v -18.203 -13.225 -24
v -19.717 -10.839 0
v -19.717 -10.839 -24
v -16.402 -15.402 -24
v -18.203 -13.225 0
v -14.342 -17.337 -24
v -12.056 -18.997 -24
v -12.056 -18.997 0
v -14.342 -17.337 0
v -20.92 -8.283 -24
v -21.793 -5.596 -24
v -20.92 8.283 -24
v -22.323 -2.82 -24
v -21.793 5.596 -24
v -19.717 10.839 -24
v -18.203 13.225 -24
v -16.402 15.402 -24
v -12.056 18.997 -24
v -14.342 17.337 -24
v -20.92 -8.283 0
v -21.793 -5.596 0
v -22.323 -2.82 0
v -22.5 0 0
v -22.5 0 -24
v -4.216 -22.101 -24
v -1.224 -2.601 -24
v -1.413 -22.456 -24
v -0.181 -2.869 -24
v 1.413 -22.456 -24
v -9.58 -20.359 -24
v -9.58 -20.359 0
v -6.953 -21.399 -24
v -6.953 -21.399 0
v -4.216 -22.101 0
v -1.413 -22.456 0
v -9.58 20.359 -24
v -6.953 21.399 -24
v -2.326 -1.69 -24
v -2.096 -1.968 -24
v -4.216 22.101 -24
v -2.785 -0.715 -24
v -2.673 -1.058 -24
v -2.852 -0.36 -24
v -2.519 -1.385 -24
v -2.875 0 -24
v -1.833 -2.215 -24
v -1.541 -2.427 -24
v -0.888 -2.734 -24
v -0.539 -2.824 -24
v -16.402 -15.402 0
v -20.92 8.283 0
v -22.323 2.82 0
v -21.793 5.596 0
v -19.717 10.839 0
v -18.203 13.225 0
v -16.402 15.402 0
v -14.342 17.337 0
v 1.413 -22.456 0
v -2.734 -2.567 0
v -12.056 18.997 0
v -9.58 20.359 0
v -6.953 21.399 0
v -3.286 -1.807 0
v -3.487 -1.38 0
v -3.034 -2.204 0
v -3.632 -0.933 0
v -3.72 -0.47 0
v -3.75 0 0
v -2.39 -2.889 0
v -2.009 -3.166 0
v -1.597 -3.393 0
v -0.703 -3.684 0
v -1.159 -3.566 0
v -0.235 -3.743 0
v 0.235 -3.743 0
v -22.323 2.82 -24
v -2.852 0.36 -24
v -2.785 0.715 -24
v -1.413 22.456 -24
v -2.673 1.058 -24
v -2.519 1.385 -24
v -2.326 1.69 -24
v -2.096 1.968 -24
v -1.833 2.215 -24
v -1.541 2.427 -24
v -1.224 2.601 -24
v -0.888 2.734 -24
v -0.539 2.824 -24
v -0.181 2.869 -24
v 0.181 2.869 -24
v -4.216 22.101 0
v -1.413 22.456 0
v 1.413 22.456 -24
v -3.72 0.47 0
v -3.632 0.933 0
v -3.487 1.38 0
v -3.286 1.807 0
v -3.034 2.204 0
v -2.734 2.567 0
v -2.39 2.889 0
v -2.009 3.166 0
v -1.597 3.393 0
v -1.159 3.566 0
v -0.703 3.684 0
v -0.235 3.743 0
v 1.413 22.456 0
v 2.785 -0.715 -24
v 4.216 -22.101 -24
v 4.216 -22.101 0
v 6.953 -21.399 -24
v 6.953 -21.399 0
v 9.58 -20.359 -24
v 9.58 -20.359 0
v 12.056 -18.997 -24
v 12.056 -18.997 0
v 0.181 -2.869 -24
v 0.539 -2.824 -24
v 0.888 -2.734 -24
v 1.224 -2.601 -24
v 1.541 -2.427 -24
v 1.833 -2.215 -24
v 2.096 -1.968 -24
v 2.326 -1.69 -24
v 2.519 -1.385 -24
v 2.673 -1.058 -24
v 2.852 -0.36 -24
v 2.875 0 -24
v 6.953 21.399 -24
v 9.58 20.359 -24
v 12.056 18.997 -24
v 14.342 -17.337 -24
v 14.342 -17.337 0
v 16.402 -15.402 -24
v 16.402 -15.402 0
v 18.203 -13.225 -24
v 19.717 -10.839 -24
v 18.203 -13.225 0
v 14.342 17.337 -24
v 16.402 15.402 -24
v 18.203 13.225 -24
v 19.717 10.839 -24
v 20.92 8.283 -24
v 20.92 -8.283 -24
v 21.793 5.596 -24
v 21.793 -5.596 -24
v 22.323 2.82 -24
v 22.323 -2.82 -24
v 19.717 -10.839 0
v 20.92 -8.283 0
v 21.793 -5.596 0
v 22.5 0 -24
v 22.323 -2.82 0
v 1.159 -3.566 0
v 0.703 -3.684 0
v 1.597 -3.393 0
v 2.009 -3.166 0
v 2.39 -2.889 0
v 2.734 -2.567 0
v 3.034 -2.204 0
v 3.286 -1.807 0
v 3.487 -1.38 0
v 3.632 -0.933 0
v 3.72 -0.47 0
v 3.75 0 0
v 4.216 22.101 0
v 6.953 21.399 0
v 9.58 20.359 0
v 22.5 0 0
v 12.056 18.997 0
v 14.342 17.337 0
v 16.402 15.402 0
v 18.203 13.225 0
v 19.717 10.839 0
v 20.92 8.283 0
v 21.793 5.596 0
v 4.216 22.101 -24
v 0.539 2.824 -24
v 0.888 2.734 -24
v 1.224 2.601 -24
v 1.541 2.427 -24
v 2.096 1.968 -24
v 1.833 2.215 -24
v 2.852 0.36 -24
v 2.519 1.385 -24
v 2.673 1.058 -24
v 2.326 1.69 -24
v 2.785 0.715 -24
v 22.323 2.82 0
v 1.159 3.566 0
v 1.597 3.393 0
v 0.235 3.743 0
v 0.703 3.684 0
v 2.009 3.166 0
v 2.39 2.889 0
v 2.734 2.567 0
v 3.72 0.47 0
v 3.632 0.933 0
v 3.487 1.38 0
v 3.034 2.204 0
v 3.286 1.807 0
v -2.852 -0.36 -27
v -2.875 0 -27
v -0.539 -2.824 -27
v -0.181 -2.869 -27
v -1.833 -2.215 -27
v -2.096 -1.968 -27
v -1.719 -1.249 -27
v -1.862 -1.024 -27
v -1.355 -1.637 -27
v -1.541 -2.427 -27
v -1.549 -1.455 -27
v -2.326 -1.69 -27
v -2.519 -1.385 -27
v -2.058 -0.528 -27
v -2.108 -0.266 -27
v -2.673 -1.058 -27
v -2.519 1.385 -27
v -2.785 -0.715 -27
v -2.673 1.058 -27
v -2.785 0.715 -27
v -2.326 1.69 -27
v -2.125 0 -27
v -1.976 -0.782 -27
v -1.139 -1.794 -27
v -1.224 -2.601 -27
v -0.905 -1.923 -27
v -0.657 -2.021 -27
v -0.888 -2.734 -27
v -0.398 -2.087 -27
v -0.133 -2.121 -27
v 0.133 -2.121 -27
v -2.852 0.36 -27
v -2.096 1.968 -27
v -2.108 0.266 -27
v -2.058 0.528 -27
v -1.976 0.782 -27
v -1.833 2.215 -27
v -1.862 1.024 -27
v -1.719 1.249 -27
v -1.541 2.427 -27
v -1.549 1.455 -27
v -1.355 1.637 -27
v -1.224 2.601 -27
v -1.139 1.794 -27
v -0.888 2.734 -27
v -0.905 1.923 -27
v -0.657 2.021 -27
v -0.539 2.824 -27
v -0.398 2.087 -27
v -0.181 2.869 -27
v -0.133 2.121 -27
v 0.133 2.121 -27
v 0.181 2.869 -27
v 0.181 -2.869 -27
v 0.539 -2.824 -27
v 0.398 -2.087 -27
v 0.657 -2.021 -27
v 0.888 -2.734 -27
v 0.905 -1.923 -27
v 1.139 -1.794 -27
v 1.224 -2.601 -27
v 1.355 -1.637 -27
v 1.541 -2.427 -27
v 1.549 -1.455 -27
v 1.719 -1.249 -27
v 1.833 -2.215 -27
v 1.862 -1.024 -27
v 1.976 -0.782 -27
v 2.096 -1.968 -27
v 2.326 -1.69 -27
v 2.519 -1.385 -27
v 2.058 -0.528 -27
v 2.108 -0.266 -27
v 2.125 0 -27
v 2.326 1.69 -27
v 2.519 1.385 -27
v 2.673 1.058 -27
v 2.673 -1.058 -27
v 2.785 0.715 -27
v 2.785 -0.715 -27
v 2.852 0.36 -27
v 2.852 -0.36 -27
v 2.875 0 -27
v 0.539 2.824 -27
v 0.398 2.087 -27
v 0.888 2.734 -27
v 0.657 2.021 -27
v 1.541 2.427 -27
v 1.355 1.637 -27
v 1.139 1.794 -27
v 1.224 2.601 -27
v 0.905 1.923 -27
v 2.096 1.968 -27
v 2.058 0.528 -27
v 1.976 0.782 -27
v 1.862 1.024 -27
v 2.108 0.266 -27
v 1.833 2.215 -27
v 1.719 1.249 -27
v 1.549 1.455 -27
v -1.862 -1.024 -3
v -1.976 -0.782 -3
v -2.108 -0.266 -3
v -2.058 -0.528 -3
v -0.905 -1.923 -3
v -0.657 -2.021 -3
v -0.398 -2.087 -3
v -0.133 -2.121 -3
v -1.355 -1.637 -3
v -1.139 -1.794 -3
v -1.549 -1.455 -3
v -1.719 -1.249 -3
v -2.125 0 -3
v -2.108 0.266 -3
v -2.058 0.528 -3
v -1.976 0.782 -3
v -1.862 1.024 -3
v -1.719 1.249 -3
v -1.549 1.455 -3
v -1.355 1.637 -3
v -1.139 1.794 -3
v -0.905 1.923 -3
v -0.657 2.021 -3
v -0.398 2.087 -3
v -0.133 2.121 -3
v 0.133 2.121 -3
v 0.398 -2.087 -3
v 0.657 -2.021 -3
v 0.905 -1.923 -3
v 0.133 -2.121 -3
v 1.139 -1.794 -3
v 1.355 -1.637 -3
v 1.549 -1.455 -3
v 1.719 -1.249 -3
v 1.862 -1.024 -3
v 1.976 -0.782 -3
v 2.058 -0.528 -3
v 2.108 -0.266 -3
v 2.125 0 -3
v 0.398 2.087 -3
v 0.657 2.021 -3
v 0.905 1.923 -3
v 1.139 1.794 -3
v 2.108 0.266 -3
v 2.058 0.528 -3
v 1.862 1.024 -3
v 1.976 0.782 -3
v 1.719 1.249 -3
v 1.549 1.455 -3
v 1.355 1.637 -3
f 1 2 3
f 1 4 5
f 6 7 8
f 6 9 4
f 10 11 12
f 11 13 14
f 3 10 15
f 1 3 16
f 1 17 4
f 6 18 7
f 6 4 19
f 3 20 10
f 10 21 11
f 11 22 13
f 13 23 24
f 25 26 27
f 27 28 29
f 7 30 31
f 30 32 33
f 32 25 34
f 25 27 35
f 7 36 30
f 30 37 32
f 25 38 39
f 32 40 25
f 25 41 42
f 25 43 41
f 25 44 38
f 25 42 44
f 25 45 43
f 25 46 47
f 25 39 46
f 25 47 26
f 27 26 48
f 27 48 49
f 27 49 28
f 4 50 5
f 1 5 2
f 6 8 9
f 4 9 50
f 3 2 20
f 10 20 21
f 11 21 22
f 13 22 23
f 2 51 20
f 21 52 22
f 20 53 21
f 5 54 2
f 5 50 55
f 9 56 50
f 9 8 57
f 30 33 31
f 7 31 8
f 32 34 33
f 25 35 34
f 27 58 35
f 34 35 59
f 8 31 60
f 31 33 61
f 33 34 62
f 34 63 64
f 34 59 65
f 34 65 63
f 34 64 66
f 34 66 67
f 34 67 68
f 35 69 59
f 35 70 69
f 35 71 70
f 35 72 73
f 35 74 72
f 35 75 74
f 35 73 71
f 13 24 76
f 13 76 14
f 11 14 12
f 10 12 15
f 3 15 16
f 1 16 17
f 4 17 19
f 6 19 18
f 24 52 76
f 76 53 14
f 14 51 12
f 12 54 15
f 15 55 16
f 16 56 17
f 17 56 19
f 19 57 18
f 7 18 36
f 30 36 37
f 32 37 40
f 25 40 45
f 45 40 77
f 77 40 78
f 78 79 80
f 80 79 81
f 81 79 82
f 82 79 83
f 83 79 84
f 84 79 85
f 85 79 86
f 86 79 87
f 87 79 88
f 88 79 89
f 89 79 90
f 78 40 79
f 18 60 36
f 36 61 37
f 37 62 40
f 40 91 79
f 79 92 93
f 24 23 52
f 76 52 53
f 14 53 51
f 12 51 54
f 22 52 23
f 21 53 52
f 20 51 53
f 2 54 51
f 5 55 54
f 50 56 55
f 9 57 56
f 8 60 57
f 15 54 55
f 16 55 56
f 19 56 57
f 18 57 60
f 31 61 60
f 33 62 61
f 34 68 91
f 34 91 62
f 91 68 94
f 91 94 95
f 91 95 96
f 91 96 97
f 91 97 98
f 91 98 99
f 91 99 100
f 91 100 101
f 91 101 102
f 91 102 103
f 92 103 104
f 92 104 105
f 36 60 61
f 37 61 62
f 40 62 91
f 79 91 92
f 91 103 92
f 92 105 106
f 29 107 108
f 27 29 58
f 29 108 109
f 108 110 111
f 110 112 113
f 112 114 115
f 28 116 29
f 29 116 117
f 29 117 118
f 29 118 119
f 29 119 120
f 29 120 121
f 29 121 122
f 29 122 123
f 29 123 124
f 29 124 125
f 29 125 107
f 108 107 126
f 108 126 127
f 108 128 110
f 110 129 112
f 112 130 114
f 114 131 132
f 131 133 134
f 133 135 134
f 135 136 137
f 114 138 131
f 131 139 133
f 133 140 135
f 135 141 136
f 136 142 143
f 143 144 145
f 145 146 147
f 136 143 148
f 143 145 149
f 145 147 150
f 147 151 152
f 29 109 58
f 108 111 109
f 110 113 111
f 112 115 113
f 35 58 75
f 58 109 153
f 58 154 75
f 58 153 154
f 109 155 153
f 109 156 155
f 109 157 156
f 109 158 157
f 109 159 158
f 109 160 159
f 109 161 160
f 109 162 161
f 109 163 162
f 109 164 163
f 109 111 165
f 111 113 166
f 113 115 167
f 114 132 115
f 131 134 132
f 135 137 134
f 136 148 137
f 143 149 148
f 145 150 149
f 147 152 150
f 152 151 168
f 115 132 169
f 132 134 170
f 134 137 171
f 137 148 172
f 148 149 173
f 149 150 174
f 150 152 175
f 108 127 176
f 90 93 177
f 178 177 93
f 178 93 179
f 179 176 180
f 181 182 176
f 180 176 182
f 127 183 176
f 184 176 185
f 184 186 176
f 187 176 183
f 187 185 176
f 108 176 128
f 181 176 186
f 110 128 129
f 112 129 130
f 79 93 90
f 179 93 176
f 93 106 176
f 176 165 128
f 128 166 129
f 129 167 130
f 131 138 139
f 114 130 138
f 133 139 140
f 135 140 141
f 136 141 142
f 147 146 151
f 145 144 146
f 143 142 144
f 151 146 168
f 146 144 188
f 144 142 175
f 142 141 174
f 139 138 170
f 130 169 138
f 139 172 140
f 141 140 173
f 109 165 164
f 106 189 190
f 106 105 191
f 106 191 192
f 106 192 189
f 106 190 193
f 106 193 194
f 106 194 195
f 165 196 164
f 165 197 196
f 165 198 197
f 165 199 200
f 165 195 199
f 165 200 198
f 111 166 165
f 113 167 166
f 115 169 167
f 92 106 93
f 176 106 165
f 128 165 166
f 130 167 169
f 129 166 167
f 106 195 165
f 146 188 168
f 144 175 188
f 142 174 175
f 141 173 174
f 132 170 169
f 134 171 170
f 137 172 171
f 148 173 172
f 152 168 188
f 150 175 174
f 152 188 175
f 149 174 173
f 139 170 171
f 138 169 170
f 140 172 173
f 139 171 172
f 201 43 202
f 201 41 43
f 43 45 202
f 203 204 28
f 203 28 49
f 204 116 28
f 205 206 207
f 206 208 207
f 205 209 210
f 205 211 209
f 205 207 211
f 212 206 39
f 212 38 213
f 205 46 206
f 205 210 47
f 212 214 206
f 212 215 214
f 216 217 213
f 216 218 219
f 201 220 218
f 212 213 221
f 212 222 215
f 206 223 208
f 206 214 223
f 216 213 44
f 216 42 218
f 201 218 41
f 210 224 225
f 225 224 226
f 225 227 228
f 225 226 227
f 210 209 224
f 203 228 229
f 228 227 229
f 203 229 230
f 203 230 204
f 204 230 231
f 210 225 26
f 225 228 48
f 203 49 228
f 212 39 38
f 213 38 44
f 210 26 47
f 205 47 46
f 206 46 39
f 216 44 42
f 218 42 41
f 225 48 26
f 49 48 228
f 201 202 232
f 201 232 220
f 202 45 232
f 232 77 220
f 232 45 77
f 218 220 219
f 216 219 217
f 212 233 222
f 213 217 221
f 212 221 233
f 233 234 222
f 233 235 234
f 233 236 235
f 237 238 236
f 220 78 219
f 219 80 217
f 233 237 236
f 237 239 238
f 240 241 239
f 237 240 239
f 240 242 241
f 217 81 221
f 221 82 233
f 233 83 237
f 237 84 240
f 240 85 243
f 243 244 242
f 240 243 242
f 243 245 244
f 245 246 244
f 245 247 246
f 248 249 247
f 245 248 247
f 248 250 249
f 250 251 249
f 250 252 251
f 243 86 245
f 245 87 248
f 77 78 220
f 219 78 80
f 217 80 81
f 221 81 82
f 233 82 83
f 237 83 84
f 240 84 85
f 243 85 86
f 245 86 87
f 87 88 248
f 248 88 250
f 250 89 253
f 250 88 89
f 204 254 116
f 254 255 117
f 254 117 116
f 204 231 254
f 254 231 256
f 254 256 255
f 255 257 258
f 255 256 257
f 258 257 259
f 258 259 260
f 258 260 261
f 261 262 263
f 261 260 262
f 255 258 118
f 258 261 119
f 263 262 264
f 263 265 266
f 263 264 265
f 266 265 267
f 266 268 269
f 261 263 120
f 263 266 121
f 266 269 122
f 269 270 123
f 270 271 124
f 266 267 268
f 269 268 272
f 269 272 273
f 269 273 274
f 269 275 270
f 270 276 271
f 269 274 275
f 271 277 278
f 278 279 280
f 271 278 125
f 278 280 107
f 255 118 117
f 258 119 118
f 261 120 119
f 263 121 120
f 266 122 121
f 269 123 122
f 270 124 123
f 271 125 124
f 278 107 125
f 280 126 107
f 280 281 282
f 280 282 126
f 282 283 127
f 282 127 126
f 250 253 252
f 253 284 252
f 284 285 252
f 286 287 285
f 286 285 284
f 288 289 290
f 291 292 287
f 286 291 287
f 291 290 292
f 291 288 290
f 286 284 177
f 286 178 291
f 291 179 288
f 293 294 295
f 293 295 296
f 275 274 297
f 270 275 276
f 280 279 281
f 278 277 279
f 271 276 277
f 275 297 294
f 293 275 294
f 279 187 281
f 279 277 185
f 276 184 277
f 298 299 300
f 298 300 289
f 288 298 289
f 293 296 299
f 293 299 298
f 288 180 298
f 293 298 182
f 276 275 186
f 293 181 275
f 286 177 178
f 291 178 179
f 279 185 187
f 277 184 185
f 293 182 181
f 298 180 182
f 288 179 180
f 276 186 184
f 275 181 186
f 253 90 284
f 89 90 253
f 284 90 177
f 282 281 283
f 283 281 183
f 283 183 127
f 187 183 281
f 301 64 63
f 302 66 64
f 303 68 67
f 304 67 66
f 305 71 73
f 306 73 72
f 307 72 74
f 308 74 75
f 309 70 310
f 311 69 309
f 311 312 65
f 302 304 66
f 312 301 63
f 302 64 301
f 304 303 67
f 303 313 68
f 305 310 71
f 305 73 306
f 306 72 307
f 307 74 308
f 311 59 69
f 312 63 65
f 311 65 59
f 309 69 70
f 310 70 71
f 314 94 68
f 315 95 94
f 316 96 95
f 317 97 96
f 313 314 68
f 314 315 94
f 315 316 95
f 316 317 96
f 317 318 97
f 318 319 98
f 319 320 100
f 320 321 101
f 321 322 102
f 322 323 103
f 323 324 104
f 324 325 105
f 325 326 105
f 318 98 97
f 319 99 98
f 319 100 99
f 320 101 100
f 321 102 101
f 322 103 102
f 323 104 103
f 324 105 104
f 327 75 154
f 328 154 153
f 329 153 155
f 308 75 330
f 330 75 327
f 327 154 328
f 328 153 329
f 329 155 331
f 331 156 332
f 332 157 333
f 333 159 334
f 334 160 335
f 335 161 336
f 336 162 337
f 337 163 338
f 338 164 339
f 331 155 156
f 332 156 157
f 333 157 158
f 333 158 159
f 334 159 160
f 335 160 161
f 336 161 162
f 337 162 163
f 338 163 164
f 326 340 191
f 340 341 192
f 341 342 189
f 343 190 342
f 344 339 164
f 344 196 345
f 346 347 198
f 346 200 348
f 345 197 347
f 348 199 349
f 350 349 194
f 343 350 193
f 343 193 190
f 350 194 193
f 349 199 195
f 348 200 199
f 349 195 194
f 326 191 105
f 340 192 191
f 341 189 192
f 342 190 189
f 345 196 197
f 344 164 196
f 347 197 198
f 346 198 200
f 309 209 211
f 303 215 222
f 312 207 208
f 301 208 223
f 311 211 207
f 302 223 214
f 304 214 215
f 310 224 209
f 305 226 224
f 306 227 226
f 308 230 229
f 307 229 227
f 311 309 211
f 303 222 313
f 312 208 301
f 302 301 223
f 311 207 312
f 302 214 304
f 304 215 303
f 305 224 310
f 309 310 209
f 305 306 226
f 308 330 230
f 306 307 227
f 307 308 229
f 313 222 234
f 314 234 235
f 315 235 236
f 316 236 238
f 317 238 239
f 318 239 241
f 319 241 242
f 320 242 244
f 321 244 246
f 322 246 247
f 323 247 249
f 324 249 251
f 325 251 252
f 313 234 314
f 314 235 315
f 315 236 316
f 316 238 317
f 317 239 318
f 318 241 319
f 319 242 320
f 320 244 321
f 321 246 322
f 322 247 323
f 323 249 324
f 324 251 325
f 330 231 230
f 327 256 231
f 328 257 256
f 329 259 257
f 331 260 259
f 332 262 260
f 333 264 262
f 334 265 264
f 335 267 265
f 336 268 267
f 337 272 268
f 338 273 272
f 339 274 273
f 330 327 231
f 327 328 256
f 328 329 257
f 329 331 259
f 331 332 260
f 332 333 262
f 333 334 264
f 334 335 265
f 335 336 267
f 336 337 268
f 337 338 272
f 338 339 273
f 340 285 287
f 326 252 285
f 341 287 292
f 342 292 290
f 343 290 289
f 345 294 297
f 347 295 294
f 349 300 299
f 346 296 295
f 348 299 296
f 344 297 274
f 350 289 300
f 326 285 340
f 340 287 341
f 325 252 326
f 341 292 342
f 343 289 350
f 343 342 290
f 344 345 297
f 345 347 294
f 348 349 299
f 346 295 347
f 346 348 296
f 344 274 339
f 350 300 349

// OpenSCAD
$fn = 50;

difference() {
	union() {
		translate(v = [0, 0, -24.0]) {
			cylinder(h = 24, r = 22.5);
		}
		#translate(v = [0, 0, -27.0]) {
			cylinder(h = 27, r = 2.875);
		}
	}
	union() {
		translate(v = [0, 0, 0]) {
			rotate(a = [0, 0, 0]) {
				difference() {
					union() {
						translate(v = [0, 0, -27.0]) {
							cylinder(h = 27, r = 2.0);
						}
						translate(v = [0, 0, -3]) {
							cylinder(h = 3, r1 = 2.125, r2 = 3.75);
						}
						translate(v = [0, 0, -27.0]) {
							cylinder(h = 27, r = 2.125);
						}
						translate(v = [0, 0, -27.0]) {
							cylinder(h = 27, r = 2.0);
						}
					}
					union();
				}
			}
		}
	}
}
